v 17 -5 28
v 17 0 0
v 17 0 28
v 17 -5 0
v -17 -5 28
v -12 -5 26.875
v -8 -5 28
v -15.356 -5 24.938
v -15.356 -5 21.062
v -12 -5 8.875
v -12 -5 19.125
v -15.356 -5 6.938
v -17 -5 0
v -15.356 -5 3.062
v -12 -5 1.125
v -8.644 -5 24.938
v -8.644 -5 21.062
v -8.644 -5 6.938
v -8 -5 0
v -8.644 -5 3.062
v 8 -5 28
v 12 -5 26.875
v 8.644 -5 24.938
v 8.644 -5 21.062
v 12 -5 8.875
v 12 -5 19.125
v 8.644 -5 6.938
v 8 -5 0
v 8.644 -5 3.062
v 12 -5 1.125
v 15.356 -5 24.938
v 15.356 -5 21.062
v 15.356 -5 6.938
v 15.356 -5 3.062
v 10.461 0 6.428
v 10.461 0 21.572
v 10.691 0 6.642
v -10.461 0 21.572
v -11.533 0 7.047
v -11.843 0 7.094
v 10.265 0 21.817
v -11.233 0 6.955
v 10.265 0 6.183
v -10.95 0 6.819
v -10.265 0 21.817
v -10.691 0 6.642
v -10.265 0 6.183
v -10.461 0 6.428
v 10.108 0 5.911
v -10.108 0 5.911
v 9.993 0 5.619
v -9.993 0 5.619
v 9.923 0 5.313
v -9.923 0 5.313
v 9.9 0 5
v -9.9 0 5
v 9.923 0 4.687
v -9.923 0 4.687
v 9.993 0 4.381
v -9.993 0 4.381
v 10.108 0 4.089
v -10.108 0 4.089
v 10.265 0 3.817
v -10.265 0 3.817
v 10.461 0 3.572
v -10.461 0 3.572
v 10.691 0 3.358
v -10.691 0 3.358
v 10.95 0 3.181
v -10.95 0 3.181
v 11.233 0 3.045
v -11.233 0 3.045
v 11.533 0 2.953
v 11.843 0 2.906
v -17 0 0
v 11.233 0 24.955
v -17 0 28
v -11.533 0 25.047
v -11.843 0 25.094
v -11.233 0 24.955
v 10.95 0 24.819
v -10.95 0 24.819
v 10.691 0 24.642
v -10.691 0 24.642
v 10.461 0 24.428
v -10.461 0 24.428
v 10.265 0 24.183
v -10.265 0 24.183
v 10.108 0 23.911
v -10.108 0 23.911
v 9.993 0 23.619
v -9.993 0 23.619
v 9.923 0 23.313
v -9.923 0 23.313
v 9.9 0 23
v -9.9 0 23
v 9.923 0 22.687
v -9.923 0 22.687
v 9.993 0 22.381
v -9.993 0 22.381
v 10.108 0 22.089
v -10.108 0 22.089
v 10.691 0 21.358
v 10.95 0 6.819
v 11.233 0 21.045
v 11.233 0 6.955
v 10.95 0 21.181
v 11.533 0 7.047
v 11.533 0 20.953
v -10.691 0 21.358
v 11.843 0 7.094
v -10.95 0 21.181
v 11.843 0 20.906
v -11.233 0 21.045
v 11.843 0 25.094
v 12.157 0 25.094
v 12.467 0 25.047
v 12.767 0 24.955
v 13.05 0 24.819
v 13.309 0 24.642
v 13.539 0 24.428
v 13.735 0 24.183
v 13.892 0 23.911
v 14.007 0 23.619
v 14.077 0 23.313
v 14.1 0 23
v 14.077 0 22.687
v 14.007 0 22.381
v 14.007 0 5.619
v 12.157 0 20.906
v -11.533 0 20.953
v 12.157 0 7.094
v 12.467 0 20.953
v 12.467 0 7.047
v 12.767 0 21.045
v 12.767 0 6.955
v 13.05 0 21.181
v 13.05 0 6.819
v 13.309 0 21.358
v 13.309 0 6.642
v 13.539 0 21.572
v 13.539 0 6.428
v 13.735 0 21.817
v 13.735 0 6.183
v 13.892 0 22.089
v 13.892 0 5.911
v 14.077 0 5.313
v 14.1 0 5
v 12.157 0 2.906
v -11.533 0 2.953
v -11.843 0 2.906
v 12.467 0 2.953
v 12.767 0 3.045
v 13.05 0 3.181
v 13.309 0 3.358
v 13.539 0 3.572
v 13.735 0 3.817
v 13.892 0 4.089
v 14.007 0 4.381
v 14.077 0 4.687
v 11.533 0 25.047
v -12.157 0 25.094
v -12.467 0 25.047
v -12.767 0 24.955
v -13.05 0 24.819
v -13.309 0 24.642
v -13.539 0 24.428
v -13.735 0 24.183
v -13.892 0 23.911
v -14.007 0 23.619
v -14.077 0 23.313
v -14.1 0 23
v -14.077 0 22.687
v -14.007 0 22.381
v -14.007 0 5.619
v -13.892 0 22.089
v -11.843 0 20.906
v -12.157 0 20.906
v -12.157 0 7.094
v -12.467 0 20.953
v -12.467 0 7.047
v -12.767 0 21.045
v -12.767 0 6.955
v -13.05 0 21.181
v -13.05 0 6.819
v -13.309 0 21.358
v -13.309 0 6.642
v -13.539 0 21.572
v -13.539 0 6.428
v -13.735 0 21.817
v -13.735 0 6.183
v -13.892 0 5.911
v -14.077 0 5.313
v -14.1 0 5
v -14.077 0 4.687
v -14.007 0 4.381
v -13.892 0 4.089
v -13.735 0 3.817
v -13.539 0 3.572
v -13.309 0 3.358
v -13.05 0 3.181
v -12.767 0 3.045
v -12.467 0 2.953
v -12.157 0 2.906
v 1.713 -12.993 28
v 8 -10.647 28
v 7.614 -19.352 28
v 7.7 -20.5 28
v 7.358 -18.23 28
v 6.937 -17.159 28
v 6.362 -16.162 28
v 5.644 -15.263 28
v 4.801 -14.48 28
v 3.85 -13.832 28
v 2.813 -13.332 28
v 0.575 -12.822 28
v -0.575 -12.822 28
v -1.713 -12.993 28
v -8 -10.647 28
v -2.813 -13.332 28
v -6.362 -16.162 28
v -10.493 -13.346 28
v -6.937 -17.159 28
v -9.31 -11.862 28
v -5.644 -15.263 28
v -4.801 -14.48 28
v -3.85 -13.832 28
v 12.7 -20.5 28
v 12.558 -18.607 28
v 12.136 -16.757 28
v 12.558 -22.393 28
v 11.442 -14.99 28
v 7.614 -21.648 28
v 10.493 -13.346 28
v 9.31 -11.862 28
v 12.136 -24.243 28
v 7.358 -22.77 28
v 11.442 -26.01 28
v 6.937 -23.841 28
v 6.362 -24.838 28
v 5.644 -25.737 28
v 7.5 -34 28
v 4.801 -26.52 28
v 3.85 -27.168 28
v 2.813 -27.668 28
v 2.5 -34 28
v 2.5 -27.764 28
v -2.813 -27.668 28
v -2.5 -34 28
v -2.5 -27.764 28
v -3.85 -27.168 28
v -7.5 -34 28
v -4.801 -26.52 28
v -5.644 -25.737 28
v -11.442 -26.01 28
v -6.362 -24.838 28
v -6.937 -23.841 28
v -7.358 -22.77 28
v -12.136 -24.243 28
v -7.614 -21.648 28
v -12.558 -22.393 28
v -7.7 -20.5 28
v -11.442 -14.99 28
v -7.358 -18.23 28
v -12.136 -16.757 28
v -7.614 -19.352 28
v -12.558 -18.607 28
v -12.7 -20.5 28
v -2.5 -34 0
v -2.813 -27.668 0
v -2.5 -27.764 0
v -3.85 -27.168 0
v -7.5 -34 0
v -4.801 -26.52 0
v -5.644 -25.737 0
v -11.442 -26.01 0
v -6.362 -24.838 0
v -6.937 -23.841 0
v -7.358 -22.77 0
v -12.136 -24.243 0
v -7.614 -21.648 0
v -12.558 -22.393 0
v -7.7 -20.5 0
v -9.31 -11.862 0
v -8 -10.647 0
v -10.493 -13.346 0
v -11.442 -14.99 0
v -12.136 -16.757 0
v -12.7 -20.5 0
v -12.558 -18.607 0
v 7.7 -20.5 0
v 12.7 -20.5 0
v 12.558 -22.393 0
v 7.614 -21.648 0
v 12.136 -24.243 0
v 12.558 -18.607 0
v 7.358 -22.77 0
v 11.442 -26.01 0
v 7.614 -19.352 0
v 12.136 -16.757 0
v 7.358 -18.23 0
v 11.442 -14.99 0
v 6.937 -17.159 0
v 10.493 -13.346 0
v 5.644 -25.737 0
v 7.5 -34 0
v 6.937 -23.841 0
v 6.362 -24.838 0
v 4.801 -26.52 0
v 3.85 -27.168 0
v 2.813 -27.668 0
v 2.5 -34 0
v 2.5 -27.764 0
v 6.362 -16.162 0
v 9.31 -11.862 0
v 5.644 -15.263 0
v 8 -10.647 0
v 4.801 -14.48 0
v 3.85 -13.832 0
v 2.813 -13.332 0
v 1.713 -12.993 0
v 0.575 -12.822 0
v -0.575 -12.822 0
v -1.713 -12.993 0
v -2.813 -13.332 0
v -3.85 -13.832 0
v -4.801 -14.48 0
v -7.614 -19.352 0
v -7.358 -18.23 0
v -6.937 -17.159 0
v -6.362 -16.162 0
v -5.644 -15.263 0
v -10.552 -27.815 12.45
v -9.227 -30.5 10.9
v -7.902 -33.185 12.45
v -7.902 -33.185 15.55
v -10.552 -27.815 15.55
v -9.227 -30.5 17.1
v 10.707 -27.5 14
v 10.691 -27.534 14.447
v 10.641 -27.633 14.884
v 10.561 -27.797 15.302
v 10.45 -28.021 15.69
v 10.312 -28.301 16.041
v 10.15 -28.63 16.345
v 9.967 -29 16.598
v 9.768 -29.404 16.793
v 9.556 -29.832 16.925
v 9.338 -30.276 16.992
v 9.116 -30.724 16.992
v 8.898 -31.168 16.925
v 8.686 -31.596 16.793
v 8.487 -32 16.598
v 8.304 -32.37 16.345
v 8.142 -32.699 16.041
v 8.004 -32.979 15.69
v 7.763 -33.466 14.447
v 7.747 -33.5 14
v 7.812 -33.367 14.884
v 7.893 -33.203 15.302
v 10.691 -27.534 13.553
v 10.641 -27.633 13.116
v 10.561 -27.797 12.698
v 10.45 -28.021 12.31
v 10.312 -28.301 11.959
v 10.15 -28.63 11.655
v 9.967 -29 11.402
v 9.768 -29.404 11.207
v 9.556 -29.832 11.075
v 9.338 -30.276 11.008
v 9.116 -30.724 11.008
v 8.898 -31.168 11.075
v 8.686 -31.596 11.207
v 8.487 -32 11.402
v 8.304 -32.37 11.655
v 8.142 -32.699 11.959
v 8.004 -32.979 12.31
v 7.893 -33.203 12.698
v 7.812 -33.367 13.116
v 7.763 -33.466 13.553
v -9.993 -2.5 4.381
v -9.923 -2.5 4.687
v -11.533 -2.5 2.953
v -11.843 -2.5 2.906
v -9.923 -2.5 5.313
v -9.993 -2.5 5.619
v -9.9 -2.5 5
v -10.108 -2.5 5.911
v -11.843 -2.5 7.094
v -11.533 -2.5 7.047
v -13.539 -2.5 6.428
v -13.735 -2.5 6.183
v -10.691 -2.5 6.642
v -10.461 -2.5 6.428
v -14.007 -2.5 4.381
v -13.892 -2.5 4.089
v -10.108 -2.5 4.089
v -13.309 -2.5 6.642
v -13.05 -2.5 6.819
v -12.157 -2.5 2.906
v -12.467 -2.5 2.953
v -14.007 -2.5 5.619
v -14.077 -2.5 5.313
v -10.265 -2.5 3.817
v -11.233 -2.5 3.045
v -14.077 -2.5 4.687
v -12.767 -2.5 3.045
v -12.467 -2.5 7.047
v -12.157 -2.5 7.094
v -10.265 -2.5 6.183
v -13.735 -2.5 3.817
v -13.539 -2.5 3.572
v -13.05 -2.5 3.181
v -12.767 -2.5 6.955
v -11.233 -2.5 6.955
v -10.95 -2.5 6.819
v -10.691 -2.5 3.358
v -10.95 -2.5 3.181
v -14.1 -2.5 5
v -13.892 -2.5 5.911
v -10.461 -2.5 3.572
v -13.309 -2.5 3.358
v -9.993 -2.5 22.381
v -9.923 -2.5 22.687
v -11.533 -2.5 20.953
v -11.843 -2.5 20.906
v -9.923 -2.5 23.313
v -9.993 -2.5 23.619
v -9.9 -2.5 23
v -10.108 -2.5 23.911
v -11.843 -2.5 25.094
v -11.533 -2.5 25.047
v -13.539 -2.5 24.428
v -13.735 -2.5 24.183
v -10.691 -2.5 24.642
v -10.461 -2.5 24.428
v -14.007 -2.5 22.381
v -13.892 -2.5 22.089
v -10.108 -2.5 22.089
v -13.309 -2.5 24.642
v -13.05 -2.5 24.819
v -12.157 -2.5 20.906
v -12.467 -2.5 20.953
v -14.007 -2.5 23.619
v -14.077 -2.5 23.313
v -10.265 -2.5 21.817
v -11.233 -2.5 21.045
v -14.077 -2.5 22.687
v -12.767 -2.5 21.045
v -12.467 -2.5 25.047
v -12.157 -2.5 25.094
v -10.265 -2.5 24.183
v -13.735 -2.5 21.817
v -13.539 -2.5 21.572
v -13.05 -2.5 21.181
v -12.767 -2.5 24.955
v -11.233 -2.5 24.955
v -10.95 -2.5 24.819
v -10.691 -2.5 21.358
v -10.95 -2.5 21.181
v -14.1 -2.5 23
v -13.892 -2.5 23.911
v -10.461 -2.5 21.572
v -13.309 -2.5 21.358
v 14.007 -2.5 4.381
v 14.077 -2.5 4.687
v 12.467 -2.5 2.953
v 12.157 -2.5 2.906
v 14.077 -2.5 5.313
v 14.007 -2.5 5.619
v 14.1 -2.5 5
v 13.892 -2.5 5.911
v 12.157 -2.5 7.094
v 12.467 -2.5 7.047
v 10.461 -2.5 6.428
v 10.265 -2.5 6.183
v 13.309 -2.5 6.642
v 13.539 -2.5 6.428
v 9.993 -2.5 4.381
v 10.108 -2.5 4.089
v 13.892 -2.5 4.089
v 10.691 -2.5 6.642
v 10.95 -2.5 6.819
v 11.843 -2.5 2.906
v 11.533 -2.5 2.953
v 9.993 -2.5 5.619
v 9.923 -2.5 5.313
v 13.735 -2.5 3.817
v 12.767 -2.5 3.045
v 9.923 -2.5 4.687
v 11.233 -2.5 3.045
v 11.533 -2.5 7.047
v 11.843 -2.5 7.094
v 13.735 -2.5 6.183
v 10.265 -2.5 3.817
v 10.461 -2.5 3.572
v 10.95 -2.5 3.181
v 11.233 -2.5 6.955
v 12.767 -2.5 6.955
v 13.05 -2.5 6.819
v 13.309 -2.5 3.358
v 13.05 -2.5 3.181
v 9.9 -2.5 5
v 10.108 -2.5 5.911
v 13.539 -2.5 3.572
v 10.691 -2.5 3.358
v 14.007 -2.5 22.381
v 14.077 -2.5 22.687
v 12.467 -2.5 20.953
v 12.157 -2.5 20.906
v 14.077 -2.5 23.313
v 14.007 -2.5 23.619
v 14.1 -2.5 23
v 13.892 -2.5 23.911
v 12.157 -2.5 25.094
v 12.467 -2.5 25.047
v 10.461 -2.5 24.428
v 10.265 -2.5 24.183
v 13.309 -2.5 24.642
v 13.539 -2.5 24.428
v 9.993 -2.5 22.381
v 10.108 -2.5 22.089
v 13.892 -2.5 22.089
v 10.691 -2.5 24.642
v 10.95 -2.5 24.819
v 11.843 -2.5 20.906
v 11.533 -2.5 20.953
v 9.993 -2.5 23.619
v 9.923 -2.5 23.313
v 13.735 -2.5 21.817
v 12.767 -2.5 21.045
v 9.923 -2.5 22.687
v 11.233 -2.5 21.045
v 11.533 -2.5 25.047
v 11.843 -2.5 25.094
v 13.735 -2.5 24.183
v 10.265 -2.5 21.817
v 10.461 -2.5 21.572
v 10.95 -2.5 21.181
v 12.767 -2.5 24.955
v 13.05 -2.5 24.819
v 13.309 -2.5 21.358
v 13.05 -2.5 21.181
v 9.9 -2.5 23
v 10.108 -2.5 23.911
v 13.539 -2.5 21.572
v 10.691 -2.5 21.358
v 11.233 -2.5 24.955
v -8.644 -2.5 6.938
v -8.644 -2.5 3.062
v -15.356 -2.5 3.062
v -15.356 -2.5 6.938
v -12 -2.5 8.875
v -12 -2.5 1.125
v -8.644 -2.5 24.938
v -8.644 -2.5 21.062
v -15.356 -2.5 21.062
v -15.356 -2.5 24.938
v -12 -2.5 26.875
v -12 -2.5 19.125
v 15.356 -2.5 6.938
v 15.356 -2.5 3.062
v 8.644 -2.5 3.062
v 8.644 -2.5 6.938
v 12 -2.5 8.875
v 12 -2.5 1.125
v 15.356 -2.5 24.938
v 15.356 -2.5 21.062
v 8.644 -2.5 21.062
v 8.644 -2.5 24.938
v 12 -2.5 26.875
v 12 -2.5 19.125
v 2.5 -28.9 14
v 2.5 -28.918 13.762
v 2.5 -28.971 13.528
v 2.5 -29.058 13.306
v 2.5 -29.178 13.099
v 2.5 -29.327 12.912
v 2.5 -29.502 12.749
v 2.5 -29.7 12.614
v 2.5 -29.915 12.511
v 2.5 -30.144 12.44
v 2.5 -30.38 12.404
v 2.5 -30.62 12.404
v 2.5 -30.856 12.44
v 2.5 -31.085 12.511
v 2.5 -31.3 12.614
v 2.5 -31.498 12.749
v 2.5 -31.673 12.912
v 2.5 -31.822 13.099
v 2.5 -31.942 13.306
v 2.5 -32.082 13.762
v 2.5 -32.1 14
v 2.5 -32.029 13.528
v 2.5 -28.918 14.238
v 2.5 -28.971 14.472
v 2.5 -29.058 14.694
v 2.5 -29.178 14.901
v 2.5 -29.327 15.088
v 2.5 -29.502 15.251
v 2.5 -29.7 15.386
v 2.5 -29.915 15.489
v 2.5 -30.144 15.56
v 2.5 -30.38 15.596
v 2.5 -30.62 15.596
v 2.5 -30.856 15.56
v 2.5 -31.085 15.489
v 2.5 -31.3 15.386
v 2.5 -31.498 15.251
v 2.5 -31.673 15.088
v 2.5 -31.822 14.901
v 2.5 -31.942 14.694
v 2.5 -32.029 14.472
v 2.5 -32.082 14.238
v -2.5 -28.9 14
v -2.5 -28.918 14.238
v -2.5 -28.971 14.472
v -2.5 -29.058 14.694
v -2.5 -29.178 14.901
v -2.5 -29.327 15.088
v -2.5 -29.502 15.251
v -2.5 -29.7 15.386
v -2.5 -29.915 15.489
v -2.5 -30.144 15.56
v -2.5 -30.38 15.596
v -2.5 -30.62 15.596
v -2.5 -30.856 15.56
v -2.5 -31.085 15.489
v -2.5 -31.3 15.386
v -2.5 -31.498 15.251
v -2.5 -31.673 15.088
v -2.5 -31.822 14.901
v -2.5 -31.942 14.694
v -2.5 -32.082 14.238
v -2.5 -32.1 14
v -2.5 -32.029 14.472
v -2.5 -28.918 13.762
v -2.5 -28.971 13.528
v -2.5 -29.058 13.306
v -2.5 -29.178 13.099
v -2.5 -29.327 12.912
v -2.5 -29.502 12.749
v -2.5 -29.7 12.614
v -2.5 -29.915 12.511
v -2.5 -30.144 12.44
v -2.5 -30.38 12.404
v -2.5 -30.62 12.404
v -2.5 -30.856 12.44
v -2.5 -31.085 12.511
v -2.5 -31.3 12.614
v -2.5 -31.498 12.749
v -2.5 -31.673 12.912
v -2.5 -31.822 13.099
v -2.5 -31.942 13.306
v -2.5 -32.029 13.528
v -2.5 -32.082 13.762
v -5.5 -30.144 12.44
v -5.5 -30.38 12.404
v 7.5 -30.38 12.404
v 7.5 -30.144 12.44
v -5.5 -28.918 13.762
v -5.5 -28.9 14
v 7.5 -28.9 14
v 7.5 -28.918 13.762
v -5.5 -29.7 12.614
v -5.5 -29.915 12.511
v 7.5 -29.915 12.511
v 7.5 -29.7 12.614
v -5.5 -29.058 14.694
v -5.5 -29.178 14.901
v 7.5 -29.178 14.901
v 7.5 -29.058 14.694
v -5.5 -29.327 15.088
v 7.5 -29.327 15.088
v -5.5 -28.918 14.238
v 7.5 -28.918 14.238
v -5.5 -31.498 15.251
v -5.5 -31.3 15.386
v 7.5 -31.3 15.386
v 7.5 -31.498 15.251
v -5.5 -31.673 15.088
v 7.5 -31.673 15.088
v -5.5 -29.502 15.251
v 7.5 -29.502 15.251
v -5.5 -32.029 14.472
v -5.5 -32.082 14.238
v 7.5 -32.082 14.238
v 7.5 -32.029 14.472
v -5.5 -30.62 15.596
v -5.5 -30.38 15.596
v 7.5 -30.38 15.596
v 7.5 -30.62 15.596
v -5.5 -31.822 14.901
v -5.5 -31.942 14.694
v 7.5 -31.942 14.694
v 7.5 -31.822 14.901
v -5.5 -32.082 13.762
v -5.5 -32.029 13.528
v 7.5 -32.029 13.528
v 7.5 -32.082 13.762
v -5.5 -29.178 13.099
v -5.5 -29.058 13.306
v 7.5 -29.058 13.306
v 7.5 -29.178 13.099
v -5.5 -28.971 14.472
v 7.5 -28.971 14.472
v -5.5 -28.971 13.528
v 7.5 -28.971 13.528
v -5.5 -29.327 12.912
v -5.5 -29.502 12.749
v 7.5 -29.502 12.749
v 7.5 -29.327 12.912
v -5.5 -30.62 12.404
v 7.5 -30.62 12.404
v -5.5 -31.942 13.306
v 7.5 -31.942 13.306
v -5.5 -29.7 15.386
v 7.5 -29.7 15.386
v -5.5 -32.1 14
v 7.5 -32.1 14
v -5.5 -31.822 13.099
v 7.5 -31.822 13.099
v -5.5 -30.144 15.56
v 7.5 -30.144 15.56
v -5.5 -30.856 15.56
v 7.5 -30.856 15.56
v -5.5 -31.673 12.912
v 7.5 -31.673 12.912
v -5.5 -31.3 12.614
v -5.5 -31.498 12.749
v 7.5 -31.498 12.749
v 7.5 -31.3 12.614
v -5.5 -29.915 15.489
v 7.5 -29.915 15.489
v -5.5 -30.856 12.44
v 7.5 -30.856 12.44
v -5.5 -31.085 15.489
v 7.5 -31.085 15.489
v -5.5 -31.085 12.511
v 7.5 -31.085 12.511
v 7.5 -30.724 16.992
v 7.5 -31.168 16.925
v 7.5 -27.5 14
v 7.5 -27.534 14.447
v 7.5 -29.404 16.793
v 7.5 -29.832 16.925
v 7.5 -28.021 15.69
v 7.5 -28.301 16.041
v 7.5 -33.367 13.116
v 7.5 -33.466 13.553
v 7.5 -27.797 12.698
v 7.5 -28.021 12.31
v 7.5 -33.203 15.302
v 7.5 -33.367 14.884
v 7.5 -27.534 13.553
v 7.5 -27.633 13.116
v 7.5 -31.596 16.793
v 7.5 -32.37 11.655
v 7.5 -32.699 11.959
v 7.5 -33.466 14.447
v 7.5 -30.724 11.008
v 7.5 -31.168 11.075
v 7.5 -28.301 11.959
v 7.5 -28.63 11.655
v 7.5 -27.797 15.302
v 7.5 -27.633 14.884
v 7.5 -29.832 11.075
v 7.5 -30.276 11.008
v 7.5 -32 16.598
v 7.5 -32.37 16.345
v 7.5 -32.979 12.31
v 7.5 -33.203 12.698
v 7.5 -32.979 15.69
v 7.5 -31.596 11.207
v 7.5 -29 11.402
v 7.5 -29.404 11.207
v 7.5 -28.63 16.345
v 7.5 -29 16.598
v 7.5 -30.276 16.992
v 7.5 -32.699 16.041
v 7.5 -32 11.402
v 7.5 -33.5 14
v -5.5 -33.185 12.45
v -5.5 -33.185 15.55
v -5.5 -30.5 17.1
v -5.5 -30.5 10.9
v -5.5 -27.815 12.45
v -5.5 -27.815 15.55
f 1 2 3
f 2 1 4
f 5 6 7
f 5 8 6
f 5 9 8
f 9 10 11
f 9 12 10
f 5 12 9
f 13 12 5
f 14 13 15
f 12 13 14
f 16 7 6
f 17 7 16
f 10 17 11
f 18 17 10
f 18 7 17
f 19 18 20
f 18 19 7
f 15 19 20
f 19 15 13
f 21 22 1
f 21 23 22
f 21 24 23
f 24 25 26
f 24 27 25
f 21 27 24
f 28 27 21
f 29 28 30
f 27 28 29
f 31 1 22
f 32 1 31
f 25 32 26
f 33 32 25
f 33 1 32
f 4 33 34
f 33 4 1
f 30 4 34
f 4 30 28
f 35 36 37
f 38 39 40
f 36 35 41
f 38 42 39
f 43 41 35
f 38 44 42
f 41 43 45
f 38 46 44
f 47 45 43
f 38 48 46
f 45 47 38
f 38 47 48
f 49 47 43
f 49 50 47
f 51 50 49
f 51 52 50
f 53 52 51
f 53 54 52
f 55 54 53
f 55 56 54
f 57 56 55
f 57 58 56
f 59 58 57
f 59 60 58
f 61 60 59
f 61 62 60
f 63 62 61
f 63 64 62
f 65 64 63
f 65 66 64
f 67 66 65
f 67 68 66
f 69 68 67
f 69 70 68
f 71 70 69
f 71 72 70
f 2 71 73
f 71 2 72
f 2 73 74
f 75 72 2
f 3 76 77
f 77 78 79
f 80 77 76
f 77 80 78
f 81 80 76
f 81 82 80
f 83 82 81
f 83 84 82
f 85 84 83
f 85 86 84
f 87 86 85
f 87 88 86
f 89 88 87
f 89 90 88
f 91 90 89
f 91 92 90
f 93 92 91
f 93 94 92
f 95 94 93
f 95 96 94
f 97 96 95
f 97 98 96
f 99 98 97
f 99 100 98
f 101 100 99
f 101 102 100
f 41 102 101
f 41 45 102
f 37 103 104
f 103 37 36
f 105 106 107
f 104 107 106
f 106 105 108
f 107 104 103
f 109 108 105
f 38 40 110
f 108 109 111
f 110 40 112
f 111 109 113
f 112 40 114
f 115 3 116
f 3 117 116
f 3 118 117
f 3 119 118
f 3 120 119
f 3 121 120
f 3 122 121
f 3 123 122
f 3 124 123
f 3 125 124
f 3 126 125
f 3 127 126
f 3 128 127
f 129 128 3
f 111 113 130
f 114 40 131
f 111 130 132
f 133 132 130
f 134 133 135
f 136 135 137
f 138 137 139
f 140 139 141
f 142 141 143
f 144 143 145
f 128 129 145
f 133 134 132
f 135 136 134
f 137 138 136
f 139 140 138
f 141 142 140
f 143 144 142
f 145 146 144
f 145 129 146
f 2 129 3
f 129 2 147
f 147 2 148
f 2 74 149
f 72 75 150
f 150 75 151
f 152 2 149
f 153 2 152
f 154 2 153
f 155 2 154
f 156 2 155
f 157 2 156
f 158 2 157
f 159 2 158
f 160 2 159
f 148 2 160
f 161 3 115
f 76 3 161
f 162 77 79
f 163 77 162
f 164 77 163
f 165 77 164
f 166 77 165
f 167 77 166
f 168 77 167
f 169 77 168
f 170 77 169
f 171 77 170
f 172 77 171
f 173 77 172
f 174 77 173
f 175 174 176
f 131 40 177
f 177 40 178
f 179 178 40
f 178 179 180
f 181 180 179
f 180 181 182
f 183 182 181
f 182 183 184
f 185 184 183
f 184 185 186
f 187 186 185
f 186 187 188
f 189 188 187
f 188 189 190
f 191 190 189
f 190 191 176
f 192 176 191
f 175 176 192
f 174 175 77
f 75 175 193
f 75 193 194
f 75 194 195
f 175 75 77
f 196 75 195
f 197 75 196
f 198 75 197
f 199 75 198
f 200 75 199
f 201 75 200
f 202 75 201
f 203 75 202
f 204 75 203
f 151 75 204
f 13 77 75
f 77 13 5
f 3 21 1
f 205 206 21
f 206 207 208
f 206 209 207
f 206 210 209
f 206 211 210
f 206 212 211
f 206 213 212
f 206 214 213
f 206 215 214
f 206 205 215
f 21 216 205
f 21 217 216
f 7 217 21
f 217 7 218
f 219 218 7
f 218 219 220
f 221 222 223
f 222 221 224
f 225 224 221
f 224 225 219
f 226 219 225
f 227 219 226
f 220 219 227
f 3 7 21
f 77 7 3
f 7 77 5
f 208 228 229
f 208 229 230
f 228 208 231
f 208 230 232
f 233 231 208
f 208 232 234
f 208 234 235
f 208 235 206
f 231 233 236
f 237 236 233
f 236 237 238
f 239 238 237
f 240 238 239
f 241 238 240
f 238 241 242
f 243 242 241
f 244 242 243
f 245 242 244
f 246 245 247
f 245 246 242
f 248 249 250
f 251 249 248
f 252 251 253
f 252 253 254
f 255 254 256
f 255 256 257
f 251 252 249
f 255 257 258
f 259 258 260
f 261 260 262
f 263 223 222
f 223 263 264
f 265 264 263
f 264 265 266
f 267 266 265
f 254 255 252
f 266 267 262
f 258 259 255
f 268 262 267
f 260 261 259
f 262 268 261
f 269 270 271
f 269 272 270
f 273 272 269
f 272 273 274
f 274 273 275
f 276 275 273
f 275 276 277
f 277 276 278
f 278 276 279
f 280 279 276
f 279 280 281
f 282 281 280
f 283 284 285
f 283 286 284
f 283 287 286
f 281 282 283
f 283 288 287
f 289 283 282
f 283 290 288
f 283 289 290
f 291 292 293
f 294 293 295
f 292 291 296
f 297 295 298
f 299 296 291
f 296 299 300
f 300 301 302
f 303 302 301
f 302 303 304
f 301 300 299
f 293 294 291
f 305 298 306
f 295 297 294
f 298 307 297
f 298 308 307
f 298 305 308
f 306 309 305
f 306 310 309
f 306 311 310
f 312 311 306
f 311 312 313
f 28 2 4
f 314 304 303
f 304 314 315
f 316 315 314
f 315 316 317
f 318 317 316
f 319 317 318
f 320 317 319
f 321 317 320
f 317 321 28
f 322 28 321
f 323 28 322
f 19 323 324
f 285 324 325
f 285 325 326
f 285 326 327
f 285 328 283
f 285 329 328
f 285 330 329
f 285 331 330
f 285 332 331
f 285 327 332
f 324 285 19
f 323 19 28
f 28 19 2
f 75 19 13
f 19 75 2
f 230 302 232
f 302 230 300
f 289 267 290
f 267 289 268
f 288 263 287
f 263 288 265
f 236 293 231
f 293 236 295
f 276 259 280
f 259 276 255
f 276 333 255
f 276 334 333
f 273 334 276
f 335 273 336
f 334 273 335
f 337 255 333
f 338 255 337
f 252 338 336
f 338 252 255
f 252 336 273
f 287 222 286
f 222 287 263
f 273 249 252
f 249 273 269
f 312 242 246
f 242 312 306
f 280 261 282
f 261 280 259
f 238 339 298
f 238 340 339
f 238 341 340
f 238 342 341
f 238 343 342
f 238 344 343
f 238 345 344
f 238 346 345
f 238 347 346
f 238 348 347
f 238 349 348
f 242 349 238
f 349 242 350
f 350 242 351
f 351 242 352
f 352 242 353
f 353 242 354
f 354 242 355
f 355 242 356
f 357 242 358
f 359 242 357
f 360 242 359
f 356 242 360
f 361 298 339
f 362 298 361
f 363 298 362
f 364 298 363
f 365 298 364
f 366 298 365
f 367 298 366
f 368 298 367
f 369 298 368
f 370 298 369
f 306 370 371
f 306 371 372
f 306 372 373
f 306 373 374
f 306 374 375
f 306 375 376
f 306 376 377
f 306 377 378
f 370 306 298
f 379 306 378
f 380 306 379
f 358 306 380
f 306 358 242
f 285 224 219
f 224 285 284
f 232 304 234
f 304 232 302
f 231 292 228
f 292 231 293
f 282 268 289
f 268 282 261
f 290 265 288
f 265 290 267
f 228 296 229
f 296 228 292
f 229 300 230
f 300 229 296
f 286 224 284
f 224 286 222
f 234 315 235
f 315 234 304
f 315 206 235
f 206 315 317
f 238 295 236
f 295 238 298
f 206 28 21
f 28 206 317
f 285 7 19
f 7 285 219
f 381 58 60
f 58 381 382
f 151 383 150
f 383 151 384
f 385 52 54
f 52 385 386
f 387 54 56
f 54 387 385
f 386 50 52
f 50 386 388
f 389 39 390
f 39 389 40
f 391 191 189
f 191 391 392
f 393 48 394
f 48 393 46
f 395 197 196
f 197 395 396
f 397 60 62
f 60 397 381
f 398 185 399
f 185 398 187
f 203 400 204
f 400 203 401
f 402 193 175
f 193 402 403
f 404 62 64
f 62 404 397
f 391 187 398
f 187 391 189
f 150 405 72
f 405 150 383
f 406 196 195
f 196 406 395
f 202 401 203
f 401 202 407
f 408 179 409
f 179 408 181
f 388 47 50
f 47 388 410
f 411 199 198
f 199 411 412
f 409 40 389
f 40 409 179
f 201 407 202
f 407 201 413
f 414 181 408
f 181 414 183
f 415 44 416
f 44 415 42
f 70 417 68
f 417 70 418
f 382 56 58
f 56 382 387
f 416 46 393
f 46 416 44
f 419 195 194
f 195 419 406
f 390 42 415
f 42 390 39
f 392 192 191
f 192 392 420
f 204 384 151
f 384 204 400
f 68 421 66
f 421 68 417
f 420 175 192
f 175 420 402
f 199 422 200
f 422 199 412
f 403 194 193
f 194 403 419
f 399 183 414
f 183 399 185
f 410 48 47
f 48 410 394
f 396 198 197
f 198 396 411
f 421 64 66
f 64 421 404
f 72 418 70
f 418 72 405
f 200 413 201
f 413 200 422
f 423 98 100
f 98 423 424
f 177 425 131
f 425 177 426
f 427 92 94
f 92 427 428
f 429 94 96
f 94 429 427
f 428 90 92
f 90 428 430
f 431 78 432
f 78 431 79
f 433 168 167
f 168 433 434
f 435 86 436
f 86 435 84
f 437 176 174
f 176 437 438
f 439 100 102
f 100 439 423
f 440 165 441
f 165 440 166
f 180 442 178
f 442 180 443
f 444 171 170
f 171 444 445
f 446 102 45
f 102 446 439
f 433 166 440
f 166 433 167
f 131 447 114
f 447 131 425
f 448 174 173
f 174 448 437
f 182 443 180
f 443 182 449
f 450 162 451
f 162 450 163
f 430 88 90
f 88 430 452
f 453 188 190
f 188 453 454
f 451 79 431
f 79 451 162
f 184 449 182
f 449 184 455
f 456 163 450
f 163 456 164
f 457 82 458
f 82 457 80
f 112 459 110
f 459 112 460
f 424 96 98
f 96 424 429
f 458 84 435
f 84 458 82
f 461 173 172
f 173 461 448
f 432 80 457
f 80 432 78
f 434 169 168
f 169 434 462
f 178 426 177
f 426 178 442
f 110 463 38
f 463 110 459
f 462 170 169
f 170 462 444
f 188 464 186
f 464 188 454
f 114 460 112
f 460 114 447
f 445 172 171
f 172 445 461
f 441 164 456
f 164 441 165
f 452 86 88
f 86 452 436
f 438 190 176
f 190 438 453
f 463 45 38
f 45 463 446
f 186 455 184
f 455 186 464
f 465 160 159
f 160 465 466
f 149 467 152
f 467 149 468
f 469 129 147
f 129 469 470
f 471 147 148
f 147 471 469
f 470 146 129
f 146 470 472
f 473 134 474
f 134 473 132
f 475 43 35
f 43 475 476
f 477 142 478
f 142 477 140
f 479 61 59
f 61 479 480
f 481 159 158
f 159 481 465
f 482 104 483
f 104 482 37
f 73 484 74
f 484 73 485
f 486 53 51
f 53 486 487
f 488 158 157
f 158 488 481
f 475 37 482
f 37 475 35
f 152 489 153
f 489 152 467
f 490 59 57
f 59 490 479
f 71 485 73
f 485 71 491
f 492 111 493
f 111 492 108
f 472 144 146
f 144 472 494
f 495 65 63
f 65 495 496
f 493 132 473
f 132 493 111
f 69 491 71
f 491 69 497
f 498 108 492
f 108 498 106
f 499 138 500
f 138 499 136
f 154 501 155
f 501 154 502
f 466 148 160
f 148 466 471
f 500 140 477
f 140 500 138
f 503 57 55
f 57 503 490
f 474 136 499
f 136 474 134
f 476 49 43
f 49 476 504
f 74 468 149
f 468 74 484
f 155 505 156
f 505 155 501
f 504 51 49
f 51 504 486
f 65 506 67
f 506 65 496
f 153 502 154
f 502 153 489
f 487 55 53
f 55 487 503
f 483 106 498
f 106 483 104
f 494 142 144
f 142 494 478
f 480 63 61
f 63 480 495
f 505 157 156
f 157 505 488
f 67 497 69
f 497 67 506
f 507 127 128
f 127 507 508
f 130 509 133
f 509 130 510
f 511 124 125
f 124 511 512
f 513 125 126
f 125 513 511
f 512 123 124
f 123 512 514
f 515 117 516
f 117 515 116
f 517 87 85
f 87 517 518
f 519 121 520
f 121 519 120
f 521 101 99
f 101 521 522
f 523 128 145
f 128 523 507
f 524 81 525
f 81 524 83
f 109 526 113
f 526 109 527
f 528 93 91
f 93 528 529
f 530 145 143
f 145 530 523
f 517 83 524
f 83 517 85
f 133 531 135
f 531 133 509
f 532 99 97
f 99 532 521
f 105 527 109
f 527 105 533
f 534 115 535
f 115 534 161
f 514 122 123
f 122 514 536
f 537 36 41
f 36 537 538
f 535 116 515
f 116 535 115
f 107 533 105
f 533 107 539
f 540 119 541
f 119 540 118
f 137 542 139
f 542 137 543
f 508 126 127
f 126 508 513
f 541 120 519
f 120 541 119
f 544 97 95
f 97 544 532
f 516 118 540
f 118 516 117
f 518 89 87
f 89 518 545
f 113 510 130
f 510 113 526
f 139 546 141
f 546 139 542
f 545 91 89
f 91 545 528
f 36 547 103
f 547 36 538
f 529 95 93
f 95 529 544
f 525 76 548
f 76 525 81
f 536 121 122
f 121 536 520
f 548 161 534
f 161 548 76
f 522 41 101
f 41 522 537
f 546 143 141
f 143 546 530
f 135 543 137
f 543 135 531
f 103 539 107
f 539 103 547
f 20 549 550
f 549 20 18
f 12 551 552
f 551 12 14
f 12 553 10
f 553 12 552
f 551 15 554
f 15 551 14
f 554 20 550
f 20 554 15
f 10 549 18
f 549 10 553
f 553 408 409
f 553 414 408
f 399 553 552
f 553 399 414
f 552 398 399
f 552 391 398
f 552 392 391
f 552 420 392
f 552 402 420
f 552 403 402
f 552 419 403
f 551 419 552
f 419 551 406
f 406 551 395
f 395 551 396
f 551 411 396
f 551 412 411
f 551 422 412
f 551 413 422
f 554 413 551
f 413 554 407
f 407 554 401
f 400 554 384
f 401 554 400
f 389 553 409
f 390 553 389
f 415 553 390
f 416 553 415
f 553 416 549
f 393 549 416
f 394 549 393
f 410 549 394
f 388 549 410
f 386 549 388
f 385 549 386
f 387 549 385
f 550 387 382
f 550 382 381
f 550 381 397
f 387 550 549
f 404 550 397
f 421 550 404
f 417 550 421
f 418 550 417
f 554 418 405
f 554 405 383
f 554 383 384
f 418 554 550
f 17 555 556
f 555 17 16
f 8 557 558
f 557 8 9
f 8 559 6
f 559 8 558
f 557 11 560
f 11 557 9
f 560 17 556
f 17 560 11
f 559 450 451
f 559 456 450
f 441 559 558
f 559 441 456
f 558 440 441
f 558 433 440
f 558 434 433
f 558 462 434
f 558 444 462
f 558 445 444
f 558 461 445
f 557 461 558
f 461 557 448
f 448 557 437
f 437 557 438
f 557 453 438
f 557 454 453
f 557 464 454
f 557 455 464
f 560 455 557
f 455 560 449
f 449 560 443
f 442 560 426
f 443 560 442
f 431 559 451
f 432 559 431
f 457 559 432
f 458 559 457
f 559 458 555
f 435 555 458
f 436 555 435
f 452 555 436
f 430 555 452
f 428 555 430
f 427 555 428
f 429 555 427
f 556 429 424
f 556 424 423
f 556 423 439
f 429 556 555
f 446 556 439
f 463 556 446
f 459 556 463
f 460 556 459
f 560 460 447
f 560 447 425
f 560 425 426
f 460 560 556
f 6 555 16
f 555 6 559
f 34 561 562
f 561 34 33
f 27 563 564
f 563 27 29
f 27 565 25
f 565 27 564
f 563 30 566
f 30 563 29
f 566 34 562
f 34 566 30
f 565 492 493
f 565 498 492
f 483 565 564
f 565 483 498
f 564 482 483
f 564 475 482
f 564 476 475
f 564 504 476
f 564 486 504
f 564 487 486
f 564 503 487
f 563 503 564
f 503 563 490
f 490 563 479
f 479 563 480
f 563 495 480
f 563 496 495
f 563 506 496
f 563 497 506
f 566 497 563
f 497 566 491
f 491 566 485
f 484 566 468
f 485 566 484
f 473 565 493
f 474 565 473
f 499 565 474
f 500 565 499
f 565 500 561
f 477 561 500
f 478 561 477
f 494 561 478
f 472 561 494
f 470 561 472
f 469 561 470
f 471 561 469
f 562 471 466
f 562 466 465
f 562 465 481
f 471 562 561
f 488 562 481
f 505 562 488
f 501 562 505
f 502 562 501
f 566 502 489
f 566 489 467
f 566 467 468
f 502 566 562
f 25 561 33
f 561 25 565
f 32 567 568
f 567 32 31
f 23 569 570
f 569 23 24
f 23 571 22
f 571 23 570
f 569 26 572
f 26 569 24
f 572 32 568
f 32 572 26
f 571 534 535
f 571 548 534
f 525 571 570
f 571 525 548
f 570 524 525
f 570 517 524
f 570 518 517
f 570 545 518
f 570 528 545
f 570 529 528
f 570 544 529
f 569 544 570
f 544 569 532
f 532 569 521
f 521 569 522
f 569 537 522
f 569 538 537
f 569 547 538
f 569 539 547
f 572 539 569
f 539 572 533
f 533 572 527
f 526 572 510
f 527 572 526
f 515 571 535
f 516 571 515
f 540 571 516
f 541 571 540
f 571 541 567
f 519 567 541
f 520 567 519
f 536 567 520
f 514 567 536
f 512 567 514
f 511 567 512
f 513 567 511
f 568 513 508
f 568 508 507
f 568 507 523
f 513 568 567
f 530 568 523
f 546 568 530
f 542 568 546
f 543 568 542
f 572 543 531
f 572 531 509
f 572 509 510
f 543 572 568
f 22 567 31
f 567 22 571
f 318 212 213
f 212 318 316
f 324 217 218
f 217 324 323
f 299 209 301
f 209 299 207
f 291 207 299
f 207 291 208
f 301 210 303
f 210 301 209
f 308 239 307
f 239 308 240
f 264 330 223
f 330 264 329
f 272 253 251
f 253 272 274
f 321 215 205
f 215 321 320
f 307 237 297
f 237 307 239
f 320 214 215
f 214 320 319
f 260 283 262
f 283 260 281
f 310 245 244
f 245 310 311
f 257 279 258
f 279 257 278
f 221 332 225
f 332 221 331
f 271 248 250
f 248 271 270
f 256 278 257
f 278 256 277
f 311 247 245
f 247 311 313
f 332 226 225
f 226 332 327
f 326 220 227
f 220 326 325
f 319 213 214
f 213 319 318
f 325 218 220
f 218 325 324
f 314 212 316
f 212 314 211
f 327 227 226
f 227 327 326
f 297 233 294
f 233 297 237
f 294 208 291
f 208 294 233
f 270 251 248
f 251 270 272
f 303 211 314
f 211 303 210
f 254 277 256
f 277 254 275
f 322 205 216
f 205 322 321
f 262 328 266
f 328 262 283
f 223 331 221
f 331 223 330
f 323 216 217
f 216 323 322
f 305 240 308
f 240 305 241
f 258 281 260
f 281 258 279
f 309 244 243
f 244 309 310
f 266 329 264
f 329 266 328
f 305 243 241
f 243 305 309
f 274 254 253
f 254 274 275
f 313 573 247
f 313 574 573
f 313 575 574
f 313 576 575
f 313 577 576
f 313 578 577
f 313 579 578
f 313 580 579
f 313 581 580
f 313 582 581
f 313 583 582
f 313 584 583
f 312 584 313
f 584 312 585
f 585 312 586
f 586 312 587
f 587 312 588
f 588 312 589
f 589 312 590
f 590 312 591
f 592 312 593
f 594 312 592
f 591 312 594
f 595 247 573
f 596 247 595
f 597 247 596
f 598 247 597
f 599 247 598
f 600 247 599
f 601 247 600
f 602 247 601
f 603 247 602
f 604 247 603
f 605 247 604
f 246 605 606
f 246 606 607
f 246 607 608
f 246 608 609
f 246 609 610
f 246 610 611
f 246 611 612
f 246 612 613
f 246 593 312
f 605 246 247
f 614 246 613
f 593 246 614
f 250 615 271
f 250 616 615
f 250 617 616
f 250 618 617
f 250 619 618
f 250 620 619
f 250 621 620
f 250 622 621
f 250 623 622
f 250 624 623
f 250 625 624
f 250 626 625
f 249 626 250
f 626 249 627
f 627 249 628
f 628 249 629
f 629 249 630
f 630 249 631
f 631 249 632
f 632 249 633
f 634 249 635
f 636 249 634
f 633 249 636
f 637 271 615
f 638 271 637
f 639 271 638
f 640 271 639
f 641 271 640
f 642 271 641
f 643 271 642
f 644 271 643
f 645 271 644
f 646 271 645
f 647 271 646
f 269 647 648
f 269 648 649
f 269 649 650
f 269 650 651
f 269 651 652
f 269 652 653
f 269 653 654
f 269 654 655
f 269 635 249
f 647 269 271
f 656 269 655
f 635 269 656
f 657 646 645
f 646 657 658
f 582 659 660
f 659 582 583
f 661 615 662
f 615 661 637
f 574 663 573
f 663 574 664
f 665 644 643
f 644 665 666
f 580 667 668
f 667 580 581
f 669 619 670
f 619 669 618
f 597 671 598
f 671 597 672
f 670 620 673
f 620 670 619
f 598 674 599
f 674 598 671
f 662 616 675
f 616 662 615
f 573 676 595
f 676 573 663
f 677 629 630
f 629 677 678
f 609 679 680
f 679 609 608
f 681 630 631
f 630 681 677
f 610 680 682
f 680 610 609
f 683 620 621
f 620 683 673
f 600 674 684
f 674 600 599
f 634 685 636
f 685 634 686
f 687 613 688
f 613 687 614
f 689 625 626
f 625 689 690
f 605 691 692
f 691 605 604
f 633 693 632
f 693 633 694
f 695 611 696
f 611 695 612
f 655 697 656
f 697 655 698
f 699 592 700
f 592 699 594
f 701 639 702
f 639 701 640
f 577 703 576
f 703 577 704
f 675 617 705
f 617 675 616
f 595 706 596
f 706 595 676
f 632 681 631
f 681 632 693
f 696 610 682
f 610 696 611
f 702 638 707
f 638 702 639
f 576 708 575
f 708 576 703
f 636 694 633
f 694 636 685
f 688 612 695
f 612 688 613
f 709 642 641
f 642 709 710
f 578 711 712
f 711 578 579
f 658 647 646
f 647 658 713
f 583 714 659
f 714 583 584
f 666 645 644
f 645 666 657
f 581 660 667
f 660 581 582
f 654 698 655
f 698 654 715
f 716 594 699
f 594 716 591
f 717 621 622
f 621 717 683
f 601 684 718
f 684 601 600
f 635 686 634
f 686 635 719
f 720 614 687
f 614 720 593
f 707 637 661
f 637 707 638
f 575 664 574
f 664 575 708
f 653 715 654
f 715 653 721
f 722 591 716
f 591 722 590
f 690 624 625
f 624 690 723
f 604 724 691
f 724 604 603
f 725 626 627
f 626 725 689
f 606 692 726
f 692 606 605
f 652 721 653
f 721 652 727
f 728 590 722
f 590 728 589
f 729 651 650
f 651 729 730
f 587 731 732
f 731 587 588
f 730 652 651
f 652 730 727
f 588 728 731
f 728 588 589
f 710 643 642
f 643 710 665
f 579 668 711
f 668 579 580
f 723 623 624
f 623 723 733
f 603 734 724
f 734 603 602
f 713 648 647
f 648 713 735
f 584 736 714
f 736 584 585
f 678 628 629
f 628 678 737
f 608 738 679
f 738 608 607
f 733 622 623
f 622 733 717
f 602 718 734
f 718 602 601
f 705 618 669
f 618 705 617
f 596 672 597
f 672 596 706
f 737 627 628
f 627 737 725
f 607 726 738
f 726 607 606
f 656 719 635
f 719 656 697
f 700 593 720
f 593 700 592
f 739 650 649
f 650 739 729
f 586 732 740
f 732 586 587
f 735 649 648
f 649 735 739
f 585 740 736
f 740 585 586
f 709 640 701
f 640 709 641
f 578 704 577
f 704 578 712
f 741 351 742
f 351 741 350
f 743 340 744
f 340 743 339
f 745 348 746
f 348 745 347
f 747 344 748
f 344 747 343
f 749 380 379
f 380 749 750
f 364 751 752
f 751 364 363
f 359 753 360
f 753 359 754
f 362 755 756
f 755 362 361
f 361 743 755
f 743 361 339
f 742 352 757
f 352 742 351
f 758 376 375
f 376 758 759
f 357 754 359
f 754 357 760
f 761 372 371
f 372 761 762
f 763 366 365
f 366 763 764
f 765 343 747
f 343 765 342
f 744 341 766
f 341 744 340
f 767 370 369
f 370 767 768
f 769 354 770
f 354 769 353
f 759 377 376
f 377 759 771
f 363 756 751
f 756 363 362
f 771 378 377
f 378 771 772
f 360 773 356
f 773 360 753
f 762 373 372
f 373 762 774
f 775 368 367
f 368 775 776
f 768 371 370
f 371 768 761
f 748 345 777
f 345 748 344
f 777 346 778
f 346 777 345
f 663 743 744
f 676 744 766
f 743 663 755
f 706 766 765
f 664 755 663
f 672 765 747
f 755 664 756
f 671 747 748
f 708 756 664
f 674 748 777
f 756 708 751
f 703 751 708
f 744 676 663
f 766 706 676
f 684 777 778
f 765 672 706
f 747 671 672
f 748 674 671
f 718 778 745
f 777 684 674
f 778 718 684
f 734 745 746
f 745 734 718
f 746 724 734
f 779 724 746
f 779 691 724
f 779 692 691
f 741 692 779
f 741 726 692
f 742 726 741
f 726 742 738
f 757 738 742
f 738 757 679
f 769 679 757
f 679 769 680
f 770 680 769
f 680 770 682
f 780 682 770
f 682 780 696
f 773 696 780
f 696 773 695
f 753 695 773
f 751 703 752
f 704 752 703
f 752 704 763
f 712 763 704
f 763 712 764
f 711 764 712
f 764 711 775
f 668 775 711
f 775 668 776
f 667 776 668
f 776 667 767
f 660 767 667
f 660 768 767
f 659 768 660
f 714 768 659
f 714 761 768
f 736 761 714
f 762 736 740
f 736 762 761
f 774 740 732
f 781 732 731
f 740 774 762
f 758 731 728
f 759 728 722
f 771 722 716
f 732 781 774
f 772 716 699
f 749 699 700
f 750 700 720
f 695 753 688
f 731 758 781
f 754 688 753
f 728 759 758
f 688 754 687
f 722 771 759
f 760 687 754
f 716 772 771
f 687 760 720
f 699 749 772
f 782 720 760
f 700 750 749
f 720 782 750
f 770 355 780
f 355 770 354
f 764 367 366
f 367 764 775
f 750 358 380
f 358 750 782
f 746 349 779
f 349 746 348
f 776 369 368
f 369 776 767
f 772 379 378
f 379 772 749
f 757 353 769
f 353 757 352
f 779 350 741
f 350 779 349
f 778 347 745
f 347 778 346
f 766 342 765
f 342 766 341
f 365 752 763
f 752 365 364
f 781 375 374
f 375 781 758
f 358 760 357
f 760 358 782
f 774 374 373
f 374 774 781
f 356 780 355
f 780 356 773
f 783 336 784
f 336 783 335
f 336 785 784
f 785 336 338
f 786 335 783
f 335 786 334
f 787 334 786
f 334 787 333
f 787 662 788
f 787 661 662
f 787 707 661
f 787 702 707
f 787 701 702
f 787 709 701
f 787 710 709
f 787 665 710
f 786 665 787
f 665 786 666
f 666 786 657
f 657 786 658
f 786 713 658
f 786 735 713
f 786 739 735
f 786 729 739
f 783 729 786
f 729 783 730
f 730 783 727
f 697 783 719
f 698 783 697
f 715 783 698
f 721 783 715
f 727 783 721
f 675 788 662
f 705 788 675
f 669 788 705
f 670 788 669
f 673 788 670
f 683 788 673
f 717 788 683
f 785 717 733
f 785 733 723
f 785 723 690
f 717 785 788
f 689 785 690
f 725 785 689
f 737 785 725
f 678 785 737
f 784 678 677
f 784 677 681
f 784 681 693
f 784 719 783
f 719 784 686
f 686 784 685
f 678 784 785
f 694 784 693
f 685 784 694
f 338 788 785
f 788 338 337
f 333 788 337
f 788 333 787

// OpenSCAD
bearing_dia = 15.0;
bearing_len = 23.8;
mount_hole = bearing_dia + 0.4;
hole_dia = 4.2;
hole_dist_x = 24.0;
hole_dist_y = 18.0;
screw_nut = 7.75;
screw_nut_off = 2.5;
base_side = 5.0;
base_wall = 5.0;
mount_bearing_dist = 13.0;
shim_width = 16.0;
cutout = 5.0;
top_screw_dia = 3.2;
top_screw_head = 6.0;
top_screw_head_off = base_side;
top_screw_nut = 6.2;
top_screw_nut_off = 3.0;

base_width = hole_dist_x + base_side * 2;
base_length = hole_dist_y + base_side * 2;

$fn = 42;

module bearing() {
    difference() {
        cylinder(d = bearing_dia, h = bearing_len);
        
        translate([0, 0, -1])
        cylinder(d = 8.0, h = bearing_len + 2);
    }
}

module mount() {
    %translate([0, (base_length - bearing_len) / 2, bearing_dia / 2 + mount_bearing_dist])
    rotate([-90, 0, 0])
    bearing();
    
    difference() {
        union() {
            // base
            translate([-base_width / 2, 0, 0])
            cube([base_width, base_length, base_wall]);
            
            hull() {
                // bearing outer hull
                translate([0, 0, bearing_dia / 2 + mount_bearing_dist])
                rotate([-90, 0, 0])
                cylinder(d = mount_hole + 2 * base_side, h = base_length);
                
                // top clamp for screw
                translate([-cutout / 2 - base_side, 0, bearing_dia + mount_bearing_dist])
                cube([cutout + 2 * base_side, base_length, base_wall + 1]);
            }
            
            // shim
            translate([-shim_width / 2, 0, base_wall])
            cube([shim_width, base_length, mount_bearing_dist - base_wall]);
        }
        
        // screw holes for mounting to carriage
        for (x = [-hole_dist_x / 2, hole_dist_x / 2])
        for (y = [-hole_dist_y / 2, hole_dist_y / 2])
        translate([x, base_length / 2 + y, -1])
        cylinder(d = hole_dia, h = base_wall + 2);
        
        // nut holes for mounting to carriage
        for (x = [-hole_dist_x / 2, hole_dist_x / 2])
        for (y = [-hole_dist_y / 2, hole_dist_y / 2])
        translate([x, base_length / 2 + y, screw_nut_off])
        rotate([0, 0, 90])
        cylinder(d = screw_nut, h = base_wall - screw_nut_off + 1, $fn = 6);
        
        // bearing hole
        translate([0, -1, bearing_dia / 2 + mount_bearing_dist])
        rotate([-90, 0, 0])
        cylinder(d = mount_hole, h = base_length + 2);
        
        // top cutout
        translate([-cutout / 2, -1, bearing_dia + mount_bearing_dist - 1])
        cube([cutout, base_length + 2, base_side + 5]);
        
        // top screw
        translate([-base_width / 2, base_length / 2, mount_bearing_dist + bearing_dia + base_wall / 2])
        rotate([0, 90, 0])
        cylinder(d = top_screw_dia, h = base_width);
        
        // top screw head
        translate([cutout / 2 + top_screw_head_off, base_length / 2, mount_bearing_dist + bearing_dia + base_wall / 2])
        rotate([0, 90, 0])
        cylinder(d = top_screw_head, h = base_width);
        
        // top screw nut
        translate([-cutout / 2 - top_screw_nut_off - base_width, base_length / 2, mount_bearing_dist + bearing_dia + base_wall / 2])
        rotate([0, 90, 0])
        rotate([0, 0, 90])
        cylinder(d = top_screw_nut, h = base_width, $fn = 6);
    }
}

rotate([90, 0, 0])
mount();
